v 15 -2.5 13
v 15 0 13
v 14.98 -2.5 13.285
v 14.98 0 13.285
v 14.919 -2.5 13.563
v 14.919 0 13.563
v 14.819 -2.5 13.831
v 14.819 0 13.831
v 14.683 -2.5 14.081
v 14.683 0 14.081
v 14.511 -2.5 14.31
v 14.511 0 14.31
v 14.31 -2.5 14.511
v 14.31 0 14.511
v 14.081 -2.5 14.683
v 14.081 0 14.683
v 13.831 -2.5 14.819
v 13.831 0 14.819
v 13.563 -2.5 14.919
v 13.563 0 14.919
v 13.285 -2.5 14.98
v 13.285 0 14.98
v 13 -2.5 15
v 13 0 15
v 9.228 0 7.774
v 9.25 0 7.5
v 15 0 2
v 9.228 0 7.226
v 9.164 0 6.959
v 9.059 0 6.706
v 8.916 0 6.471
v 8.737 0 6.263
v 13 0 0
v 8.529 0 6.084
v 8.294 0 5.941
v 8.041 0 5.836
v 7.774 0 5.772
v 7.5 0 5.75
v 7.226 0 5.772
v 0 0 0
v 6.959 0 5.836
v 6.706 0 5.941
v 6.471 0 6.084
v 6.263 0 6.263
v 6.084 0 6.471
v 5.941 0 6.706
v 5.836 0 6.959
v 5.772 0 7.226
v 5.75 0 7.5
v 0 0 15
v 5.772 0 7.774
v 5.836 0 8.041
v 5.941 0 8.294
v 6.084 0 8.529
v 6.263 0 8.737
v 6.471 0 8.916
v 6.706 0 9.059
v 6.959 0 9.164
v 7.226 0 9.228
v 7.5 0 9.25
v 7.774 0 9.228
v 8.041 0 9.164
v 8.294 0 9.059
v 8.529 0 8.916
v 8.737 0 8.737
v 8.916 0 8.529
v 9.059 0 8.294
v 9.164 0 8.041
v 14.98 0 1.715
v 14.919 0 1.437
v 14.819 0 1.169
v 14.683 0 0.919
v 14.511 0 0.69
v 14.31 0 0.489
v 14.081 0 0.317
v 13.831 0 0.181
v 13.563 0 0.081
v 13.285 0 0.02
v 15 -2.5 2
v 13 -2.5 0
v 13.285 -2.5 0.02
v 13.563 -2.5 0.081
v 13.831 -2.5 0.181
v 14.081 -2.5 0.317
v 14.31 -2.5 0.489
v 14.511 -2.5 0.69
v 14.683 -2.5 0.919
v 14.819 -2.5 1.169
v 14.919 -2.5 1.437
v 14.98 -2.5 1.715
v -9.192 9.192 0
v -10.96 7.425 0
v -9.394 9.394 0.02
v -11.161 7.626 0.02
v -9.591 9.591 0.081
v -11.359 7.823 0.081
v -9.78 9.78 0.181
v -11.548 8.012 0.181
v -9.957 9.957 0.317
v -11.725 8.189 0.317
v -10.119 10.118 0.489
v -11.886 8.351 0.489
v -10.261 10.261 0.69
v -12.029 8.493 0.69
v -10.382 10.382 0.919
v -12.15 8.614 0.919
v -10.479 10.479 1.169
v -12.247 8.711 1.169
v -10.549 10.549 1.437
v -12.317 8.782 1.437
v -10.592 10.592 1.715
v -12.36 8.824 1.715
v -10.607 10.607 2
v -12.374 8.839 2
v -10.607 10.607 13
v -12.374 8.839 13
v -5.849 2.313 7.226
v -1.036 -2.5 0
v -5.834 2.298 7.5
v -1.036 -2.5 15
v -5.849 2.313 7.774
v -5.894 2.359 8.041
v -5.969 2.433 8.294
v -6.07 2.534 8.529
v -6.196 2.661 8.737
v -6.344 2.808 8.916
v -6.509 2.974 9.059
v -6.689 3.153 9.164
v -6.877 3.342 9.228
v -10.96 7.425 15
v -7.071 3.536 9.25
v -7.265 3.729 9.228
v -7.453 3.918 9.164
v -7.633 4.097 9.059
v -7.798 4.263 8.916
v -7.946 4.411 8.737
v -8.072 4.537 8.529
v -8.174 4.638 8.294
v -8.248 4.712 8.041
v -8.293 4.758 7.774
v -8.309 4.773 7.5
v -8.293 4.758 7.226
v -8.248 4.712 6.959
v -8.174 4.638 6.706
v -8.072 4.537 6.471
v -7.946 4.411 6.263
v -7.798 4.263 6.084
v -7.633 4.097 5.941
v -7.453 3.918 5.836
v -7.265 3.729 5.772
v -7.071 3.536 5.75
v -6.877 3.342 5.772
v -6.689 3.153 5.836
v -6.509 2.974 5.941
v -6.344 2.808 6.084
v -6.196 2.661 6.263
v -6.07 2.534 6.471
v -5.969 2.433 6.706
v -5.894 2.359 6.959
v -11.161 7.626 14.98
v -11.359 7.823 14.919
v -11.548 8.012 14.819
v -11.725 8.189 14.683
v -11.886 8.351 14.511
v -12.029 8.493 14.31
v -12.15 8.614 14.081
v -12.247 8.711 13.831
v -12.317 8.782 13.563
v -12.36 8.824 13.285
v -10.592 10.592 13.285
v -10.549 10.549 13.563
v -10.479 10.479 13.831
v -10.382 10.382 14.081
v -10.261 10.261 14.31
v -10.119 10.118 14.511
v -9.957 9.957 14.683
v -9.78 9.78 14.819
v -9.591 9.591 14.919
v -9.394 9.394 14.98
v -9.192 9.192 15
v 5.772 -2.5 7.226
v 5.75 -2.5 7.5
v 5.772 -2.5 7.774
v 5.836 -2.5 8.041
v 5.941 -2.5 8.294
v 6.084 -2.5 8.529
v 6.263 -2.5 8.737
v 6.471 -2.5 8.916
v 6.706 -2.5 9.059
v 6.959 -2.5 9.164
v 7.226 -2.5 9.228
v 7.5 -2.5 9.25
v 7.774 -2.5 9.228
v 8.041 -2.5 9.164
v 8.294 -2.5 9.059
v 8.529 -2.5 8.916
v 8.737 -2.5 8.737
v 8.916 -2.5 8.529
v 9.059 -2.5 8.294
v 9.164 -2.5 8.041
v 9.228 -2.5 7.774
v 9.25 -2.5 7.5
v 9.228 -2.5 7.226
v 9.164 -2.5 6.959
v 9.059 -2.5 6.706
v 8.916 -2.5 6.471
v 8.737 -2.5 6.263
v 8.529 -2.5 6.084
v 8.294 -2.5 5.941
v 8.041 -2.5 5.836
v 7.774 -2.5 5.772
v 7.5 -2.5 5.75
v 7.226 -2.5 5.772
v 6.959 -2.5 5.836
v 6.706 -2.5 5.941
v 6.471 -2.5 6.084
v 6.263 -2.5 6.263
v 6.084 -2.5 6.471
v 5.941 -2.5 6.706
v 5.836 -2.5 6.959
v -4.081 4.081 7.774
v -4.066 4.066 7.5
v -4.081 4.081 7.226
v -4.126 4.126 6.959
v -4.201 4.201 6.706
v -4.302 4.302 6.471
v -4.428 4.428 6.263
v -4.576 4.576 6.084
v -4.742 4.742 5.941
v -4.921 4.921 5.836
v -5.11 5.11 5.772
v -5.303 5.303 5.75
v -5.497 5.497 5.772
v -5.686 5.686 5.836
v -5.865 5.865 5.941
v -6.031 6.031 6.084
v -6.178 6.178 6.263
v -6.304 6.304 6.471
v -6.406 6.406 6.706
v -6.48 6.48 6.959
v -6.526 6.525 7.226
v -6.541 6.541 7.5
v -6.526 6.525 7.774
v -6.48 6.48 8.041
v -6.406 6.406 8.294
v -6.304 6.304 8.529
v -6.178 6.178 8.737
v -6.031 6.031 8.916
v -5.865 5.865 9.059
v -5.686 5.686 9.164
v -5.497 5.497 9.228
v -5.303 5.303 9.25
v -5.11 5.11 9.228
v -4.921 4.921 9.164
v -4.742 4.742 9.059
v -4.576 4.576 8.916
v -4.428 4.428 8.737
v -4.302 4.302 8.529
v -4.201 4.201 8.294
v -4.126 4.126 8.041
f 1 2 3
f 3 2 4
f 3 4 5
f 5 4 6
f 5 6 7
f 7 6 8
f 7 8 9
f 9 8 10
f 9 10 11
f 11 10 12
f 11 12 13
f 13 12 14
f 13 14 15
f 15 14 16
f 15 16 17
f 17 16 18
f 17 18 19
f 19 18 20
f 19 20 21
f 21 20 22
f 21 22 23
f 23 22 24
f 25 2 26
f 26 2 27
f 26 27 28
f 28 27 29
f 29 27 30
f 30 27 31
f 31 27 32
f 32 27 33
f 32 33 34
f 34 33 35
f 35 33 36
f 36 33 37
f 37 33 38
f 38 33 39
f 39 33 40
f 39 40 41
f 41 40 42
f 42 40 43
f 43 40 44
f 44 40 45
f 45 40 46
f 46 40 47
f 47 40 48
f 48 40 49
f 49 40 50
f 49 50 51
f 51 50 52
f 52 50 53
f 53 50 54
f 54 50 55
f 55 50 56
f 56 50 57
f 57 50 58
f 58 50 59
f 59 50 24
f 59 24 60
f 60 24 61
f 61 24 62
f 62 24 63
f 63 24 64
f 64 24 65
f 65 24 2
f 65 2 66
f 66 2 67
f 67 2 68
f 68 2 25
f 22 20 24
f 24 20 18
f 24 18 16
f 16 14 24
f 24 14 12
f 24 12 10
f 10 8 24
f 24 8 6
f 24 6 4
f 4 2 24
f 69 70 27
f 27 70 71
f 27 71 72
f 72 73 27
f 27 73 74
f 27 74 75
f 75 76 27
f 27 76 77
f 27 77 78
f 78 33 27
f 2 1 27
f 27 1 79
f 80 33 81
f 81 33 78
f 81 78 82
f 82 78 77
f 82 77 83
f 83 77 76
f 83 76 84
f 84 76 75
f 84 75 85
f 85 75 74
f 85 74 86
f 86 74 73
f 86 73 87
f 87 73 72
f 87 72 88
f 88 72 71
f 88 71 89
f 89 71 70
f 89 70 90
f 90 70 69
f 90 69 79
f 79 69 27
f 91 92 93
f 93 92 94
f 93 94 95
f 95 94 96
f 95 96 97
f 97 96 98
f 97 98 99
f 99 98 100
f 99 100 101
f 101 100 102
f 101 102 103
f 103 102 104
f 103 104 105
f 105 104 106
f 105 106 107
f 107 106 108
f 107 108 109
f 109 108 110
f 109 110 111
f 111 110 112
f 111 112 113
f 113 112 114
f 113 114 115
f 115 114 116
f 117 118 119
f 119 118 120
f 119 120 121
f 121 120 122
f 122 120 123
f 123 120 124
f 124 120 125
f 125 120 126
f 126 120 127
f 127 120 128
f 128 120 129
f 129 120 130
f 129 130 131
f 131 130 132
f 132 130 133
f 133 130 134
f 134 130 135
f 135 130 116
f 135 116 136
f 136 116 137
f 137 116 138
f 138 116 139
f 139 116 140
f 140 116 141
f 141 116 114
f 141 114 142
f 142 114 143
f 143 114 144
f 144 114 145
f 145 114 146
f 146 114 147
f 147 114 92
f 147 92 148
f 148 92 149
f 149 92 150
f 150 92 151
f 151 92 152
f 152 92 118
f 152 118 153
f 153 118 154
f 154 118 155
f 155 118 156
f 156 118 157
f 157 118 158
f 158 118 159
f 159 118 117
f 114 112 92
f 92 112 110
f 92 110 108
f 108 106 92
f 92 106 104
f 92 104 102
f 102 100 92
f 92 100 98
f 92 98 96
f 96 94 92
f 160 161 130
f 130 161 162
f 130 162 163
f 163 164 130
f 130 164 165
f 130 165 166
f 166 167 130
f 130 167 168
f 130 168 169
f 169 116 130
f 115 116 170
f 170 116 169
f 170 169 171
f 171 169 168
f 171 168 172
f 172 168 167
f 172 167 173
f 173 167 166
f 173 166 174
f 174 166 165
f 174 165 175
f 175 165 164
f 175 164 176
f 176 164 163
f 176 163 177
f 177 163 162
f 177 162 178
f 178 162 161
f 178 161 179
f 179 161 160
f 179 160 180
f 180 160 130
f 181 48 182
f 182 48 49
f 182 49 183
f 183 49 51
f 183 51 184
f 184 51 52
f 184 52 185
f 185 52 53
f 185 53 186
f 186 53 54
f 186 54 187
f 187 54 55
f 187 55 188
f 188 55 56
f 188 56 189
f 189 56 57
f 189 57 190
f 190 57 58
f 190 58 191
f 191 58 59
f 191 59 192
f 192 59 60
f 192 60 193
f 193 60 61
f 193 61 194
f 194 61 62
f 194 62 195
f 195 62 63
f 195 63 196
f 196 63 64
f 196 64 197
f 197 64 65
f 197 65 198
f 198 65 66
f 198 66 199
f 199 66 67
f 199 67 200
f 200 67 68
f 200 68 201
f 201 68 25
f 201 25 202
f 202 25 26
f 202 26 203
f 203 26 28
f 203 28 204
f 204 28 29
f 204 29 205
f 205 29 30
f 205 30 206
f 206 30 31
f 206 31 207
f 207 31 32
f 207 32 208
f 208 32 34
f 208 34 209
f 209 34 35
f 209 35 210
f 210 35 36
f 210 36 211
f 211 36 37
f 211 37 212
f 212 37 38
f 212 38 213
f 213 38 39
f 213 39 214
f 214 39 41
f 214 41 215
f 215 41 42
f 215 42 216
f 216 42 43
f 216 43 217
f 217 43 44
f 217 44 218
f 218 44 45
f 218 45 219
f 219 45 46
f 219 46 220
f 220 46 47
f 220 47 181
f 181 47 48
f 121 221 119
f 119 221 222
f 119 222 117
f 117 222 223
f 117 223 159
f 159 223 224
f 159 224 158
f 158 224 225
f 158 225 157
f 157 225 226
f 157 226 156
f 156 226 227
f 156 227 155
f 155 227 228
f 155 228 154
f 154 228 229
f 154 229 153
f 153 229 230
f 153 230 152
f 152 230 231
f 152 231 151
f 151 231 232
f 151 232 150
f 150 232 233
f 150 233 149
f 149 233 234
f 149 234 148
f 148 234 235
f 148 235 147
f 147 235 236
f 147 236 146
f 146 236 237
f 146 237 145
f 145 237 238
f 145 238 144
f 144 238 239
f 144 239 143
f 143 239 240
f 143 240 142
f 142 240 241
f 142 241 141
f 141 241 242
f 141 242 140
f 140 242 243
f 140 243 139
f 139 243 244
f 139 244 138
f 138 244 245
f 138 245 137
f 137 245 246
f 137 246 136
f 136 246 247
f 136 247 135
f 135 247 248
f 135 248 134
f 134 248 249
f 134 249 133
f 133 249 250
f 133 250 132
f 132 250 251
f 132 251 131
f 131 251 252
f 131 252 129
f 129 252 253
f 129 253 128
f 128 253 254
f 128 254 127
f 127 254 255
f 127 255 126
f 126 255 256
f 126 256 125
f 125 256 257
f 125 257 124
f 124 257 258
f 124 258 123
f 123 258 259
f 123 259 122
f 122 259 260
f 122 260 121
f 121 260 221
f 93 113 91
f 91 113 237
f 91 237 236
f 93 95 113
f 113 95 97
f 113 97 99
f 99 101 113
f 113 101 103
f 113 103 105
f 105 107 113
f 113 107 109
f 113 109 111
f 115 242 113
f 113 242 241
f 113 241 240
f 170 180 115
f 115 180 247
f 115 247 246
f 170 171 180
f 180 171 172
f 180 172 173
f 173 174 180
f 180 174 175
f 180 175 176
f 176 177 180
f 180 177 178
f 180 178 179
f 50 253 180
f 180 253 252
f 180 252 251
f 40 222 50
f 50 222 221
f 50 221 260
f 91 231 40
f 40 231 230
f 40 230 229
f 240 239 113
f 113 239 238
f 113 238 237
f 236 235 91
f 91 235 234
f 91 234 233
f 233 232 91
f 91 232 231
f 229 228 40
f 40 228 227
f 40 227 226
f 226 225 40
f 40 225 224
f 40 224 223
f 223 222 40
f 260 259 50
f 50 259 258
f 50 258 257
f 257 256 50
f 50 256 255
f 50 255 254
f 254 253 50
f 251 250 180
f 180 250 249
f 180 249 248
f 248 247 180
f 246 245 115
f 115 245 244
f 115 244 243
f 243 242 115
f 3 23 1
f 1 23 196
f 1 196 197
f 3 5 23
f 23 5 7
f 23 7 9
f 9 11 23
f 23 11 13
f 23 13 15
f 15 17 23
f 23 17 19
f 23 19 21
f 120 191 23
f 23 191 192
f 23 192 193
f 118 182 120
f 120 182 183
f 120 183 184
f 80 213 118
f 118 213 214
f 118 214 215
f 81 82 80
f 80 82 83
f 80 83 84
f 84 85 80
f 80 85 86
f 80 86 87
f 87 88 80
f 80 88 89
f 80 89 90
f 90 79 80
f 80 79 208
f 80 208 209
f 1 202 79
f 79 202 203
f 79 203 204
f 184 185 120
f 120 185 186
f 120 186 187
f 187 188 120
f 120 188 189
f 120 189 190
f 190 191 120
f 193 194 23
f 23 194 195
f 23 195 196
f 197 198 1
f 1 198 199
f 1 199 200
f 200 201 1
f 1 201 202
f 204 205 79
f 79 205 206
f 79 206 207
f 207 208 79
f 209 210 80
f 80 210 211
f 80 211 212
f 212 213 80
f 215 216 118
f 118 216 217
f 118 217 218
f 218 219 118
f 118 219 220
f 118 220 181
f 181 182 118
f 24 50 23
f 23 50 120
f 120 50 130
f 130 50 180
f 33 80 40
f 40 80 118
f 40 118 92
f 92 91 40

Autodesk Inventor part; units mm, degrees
ref_plane "YZ Plane" through (0, 0, 0) normal (1, 0, 0) x (0, 1, 0)
ref_plane "XZ Plane" through (0, 0, 0) normal (0, 1, 0) x (-1, 0, 0)
ref_plane "XY Plane" through (0, 0, 0) normal (0, 0, 1) x (1, 0, 0)
sketch "Sketch1" plane through (0, 0, 0) normal (0, 0, 1) x (1, 0, 0)
  line L0 (0, 0) -> (15, 0)
  line L1 (0, 0) -> (-10.6066, 10.6066)
  line L2 (0, 0) -> (15, 0) construction
  line L3 (-10.6066, 10.6066) -> (-12.3744, 8.8388)
  line L4 (15, 0) -> (15, -2.5)
  line L5 (0, 0) -> (2.3007, 5.5544) construction
  line L6 (0, 0) -> (6.0121, 0) construction
  line L7 (2.3007, 5.5544) -> (-1.6655, -4.021) construction
  line L8 (-12.3744, 8.8388) -> (-1.0355, -2.5)
  line L9 (15, -2.5) -> (-1.0355, -2.5)
  dimension "d2" = 15
  dimension "d3" = 15
  dimension "d4" = 135
  dimension "d5" = 2.5
  dimension "d6" = 2.5
  dimension "d7" = 67.5
extrude "Extrusion1" add sketch "Sketch1" along normal blind 15
sketch "Sketch2" plane through (-10.6066, 10.6066, 0) normal (0.7071, 0.7071, 0) x (-0.7071, 0.7071, 0)
  circle A0 centre (-7.5, 7.5) radius 1.75
  line L0 (-15, 15) -> (0, 15) projected
  line L1 (-15, 0) -> (-15, 15) projected
  dimension "d10" = 3.5
  dimension "d11" = 7.5
  dimension "d12" = 7.5
sketch "Sketch3" plane through (0, 0, 0) normal (0, 1, 0) x (1, 0, 0)
  circle A0 centre (7.5, -7.5) radius 1.75
  line L0 (15, 0) -> (15, -15) projected
  line L1 (15, 0) -> (0, 0) projected
  dimension "d13" = 3.5
  dimension "d14" = 7.5
  dimension "d15" = 7.5
extrude "Extrusion2" cut sketch "Sketch2" against normal blind 15
extrude "Extrusion3" cut sketch "Sketch3" against normal blind 15
fillet "Fillet1" radius 2 4 edges at (-11.4905, 9.7227, 15) (-11.4905, 9.7227, 0) (15, -1.25, 0) (15, -1.25, 15)
properties part number "45 degree inside coner bracket"
